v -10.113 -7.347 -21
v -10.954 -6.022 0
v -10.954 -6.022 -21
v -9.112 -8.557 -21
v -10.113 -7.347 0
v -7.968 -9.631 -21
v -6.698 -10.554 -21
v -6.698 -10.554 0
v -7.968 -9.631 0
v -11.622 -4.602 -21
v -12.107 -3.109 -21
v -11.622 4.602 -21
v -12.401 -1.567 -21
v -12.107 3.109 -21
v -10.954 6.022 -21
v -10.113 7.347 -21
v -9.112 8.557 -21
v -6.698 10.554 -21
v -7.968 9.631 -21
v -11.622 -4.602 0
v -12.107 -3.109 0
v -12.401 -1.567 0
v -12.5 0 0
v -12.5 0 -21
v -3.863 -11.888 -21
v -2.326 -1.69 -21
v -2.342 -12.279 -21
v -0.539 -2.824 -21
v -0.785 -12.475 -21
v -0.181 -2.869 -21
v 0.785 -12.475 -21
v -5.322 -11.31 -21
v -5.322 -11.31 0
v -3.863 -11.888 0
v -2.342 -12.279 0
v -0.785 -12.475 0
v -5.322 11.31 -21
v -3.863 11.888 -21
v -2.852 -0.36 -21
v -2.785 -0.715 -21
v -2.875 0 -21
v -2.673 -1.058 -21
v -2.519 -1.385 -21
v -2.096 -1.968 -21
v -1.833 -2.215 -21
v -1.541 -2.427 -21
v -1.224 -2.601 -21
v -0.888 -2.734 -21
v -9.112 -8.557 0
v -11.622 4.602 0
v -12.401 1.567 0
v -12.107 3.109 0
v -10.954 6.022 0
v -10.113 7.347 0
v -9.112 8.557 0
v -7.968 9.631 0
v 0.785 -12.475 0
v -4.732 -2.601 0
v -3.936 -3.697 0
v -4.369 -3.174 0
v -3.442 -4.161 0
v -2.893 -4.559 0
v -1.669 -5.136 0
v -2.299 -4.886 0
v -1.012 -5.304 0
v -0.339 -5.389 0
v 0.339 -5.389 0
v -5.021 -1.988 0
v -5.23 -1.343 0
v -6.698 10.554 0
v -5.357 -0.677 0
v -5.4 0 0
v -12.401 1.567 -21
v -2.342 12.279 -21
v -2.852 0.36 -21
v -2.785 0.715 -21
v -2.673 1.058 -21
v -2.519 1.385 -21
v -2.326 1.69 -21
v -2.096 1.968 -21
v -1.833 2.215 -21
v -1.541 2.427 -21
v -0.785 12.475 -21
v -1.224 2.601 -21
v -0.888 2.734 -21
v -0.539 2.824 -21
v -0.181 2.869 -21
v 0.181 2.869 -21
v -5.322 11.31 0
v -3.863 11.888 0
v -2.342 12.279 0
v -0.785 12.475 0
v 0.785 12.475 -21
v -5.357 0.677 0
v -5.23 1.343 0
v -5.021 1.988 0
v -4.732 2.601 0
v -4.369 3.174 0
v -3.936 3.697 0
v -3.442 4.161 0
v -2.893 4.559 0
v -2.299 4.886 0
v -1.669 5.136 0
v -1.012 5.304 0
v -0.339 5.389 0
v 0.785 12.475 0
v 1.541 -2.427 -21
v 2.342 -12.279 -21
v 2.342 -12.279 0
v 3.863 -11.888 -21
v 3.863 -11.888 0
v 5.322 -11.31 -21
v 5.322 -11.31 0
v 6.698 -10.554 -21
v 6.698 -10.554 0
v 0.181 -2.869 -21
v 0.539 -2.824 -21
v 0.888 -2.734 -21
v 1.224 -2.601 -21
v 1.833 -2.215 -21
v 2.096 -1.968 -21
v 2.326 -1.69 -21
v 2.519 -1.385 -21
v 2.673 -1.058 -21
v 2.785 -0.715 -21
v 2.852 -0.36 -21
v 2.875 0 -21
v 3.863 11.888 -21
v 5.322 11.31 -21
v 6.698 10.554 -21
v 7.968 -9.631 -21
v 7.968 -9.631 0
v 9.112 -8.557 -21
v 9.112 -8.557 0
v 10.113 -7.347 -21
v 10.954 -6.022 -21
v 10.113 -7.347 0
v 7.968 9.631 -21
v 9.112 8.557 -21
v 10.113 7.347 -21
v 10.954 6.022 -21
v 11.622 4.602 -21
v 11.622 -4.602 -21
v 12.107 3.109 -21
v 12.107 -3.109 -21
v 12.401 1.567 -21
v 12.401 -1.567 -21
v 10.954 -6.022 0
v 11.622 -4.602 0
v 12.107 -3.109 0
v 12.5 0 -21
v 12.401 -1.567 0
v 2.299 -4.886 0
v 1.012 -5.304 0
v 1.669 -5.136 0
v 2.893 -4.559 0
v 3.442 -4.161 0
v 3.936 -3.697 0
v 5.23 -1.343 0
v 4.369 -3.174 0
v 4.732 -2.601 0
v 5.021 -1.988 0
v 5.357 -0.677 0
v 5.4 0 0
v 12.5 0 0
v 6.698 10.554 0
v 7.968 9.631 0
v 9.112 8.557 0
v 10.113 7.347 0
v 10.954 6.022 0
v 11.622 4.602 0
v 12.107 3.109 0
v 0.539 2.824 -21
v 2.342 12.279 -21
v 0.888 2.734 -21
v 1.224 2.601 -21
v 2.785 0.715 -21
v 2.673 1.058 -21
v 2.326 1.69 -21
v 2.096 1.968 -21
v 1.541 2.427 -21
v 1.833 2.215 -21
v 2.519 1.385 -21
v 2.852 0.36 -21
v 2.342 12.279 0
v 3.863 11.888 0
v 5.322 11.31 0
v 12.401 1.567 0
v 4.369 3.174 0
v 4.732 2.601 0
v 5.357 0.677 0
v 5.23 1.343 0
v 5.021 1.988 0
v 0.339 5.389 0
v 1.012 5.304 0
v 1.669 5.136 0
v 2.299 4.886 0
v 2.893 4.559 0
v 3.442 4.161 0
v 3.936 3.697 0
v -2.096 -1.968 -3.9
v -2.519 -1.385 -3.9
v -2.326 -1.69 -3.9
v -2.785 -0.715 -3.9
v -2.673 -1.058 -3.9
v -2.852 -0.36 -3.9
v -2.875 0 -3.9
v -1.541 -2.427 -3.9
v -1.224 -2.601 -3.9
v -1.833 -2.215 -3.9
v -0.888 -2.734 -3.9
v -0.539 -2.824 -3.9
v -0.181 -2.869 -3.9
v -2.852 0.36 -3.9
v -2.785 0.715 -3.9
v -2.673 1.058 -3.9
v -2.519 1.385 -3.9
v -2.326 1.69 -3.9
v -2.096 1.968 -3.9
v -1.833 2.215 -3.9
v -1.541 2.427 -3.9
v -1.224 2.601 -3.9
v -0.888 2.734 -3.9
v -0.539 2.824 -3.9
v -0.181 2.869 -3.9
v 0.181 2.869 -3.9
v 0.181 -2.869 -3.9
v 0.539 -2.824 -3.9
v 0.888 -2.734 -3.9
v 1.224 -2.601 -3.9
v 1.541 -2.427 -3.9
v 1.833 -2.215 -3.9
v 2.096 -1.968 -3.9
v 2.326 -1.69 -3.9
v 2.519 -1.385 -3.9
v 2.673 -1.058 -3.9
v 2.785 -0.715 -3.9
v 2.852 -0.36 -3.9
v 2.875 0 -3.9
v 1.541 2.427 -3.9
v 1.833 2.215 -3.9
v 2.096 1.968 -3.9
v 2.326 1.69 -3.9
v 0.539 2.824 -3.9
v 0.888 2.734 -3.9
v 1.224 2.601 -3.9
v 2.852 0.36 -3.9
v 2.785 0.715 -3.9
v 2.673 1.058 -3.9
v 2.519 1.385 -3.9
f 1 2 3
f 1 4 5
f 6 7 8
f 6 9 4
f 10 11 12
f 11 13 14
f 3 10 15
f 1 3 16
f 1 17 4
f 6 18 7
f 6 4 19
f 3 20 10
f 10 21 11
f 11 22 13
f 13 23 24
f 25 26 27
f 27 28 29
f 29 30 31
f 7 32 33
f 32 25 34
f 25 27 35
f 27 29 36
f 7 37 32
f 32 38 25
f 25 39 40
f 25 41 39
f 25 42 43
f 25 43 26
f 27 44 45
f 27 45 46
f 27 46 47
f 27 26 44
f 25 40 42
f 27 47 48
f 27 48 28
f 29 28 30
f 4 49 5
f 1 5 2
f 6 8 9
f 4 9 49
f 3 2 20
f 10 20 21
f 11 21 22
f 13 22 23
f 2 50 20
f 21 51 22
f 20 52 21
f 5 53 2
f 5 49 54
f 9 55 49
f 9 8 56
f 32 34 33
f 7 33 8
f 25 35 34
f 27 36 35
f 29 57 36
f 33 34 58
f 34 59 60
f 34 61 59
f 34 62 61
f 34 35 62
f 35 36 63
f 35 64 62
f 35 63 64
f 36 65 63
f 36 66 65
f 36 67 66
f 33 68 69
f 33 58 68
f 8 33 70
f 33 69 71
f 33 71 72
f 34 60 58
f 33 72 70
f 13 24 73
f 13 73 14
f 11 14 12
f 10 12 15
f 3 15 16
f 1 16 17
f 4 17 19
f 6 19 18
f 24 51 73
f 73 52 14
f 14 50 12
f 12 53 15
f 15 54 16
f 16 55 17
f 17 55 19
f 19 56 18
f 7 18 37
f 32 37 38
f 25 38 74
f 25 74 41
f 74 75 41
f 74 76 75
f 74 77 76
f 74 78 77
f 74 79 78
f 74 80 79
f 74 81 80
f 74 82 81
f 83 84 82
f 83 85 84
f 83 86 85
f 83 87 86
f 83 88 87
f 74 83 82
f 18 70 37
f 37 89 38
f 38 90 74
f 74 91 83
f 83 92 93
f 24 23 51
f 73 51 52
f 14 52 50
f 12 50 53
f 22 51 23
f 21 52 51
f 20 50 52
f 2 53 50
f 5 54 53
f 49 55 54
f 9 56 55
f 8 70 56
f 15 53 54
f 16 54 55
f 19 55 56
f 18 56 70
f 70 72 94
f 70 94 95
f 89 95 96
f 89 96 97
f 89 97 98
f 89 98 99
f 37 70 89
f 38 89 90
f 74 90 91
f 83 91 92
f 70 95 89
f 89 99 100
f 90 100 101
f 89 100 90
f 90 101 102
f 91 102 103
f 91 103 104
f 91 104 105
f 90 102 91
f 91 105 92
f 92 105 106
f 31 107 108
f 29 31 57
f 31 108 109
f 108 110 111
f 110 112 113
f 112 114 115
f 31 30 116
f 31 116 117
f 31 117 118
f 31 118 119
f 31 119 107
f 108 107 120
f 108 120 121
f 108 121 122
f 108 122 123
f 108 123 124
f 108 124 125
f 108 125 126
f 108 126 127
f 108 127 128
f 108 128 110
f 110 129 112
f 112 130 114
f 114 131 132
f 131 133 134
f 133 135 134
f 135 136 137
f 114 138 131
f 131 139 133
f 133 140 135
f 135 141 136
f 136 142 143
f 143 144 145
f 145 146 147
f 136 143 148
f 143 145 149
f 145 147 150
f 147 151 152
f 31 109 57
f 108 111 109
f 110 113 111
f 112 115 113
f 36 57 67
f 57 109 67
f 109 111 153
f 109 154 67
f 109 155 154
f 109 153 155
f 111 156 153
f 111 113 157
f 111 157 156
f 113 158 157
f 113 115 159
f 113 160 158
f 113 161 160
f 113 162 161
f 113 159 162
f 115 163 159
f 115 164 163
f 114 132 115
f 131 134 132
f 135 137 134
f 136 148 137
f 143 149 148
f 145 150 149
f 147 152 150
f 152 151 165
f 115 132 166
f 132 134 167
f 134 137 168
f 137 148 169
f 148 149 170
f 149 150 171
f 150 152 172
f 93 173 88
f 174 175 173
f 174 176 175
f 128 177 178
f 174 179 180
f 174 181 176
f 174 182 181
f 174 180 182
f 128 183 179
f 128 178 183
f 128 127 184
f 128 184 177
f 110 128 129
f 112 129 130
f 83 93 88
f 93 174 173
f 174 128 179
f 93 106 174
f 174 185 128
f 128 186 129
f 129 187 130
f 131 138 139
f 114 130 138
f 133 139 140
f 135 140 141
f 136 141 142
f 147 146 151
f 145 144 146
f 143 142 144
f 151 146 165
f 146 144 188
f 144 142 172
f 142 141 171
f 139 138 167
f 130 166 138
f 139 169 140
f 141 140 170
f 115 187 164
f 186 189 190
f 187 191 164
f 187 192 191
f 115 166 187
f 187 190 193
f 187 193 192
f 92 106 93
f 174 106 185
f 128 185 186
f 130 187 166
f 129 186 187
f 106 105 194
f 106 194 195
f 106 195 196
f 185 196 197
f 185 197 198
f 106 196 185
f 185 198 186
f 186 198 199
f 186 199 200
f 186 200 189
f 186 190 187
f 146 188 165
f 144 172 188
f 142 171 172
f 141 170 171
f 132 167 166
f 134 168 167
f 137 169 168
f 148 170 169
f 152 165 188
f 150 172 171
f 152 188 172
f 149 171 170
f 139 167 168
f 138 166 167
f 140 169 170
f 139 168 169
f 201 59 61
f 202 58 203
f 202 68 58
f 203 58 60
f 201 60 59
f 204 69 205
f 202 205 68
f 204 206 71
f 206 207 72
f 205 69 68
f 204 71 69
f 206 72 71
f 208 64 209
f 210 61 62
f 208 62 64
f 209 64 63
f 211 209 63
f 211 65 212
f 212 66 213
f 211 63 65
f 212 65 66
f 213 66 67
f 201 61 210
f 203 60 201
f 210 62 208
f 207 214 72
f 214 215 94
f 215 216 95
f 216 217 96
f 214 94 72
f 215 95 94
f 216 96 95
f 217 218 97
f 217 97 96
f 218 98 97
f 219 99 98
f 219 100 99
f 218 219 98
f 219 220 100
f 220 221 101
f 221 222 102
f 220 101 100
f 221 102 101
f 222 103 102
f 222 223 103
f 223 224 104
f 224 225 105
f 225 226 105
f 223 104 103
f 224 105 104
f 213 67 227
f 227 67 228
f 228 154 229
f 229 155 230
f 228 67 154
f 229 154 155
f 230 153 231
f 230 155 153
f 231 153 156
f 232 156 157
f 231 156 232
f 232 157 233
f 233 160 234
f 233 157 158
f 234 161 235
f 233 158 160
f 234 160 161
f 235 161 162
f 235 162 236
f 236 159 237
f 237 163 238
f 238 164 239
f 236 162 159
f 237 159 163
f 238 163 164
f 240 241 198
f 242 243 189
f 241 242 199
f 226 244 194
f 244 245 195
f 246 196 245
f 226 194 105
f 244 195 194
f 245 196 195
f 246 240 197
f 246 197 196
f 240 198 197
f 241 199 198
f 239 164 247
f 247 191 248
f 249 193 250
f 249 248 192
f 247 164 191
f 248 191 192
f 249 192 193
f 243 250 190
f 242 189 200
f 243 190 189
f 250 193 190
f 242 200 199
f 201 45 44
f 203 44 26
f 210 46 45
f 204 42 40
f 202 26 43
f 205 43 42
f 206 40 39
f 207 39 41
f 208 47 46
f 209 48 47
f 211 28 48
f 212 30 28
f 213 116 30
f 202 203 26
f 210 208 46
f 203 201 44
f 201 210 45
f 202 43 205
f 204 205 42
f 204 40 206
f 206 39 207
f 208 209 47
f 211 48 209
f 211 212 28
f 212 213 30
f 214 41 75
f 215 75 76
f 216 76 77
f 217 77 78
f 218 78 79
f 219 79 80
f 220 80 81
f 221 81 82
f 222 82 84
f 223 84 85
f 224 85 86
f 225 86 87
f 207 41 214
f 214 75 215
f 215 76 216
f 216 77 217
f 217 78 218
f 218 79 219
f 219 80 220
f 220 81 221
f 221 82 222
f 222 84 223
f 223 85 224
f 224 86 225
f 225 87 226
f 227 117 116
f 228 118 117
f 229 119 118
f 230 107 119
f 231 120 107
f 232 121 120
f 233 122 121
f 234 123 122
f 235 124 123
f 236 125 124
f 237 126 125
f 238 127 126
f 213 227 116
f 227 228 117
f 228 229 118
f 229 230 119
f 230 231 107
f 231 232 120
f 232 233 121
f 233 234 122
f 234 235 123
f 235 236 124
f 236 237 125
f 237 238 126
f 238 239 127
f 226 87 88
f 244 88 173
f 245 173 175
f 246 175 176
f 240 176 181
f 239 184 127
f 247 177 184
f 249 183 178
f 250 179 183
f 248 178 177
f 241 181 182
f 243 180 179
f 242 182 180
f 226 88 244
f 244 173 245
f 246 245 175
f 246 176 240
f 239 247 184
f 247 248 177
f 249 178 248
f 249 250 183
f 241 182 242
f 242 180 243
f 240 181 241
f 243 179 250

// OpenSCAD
$fn = 50;

difference() {
	union() {
		translate(v = [0, 0, -21.0]) {
			cylinder(h = 21, r = 12.5);
		}
		#translate(v = [0, 0, -24.0]) {
			cylinder(h = 24, r = 2.875);
		}
	}
	union() {
		translate(v = [0, 0, 0]) {
			rotate(a = [0, 0, 0]) {
				difference() {
					union() {
						translate(v = [0, 0, -24.0]) {
							cylinder(h = 24, r = 2.6);
						}
						translate(v = [0, 0, -3.9]) {
							cylinder(h = 3.9, r1 = 2.875, r2 = 5.4);
						}
						translate(v = [0, 0, -24.0]) {
							cylinder(h = 24, r = 2.875);
						}
						translate(v = [0, 0, -24.0]) {
							cylinder(h = 24, r = 2.6);
						}
					}
					union();
				}
			}
		}
	}
}
